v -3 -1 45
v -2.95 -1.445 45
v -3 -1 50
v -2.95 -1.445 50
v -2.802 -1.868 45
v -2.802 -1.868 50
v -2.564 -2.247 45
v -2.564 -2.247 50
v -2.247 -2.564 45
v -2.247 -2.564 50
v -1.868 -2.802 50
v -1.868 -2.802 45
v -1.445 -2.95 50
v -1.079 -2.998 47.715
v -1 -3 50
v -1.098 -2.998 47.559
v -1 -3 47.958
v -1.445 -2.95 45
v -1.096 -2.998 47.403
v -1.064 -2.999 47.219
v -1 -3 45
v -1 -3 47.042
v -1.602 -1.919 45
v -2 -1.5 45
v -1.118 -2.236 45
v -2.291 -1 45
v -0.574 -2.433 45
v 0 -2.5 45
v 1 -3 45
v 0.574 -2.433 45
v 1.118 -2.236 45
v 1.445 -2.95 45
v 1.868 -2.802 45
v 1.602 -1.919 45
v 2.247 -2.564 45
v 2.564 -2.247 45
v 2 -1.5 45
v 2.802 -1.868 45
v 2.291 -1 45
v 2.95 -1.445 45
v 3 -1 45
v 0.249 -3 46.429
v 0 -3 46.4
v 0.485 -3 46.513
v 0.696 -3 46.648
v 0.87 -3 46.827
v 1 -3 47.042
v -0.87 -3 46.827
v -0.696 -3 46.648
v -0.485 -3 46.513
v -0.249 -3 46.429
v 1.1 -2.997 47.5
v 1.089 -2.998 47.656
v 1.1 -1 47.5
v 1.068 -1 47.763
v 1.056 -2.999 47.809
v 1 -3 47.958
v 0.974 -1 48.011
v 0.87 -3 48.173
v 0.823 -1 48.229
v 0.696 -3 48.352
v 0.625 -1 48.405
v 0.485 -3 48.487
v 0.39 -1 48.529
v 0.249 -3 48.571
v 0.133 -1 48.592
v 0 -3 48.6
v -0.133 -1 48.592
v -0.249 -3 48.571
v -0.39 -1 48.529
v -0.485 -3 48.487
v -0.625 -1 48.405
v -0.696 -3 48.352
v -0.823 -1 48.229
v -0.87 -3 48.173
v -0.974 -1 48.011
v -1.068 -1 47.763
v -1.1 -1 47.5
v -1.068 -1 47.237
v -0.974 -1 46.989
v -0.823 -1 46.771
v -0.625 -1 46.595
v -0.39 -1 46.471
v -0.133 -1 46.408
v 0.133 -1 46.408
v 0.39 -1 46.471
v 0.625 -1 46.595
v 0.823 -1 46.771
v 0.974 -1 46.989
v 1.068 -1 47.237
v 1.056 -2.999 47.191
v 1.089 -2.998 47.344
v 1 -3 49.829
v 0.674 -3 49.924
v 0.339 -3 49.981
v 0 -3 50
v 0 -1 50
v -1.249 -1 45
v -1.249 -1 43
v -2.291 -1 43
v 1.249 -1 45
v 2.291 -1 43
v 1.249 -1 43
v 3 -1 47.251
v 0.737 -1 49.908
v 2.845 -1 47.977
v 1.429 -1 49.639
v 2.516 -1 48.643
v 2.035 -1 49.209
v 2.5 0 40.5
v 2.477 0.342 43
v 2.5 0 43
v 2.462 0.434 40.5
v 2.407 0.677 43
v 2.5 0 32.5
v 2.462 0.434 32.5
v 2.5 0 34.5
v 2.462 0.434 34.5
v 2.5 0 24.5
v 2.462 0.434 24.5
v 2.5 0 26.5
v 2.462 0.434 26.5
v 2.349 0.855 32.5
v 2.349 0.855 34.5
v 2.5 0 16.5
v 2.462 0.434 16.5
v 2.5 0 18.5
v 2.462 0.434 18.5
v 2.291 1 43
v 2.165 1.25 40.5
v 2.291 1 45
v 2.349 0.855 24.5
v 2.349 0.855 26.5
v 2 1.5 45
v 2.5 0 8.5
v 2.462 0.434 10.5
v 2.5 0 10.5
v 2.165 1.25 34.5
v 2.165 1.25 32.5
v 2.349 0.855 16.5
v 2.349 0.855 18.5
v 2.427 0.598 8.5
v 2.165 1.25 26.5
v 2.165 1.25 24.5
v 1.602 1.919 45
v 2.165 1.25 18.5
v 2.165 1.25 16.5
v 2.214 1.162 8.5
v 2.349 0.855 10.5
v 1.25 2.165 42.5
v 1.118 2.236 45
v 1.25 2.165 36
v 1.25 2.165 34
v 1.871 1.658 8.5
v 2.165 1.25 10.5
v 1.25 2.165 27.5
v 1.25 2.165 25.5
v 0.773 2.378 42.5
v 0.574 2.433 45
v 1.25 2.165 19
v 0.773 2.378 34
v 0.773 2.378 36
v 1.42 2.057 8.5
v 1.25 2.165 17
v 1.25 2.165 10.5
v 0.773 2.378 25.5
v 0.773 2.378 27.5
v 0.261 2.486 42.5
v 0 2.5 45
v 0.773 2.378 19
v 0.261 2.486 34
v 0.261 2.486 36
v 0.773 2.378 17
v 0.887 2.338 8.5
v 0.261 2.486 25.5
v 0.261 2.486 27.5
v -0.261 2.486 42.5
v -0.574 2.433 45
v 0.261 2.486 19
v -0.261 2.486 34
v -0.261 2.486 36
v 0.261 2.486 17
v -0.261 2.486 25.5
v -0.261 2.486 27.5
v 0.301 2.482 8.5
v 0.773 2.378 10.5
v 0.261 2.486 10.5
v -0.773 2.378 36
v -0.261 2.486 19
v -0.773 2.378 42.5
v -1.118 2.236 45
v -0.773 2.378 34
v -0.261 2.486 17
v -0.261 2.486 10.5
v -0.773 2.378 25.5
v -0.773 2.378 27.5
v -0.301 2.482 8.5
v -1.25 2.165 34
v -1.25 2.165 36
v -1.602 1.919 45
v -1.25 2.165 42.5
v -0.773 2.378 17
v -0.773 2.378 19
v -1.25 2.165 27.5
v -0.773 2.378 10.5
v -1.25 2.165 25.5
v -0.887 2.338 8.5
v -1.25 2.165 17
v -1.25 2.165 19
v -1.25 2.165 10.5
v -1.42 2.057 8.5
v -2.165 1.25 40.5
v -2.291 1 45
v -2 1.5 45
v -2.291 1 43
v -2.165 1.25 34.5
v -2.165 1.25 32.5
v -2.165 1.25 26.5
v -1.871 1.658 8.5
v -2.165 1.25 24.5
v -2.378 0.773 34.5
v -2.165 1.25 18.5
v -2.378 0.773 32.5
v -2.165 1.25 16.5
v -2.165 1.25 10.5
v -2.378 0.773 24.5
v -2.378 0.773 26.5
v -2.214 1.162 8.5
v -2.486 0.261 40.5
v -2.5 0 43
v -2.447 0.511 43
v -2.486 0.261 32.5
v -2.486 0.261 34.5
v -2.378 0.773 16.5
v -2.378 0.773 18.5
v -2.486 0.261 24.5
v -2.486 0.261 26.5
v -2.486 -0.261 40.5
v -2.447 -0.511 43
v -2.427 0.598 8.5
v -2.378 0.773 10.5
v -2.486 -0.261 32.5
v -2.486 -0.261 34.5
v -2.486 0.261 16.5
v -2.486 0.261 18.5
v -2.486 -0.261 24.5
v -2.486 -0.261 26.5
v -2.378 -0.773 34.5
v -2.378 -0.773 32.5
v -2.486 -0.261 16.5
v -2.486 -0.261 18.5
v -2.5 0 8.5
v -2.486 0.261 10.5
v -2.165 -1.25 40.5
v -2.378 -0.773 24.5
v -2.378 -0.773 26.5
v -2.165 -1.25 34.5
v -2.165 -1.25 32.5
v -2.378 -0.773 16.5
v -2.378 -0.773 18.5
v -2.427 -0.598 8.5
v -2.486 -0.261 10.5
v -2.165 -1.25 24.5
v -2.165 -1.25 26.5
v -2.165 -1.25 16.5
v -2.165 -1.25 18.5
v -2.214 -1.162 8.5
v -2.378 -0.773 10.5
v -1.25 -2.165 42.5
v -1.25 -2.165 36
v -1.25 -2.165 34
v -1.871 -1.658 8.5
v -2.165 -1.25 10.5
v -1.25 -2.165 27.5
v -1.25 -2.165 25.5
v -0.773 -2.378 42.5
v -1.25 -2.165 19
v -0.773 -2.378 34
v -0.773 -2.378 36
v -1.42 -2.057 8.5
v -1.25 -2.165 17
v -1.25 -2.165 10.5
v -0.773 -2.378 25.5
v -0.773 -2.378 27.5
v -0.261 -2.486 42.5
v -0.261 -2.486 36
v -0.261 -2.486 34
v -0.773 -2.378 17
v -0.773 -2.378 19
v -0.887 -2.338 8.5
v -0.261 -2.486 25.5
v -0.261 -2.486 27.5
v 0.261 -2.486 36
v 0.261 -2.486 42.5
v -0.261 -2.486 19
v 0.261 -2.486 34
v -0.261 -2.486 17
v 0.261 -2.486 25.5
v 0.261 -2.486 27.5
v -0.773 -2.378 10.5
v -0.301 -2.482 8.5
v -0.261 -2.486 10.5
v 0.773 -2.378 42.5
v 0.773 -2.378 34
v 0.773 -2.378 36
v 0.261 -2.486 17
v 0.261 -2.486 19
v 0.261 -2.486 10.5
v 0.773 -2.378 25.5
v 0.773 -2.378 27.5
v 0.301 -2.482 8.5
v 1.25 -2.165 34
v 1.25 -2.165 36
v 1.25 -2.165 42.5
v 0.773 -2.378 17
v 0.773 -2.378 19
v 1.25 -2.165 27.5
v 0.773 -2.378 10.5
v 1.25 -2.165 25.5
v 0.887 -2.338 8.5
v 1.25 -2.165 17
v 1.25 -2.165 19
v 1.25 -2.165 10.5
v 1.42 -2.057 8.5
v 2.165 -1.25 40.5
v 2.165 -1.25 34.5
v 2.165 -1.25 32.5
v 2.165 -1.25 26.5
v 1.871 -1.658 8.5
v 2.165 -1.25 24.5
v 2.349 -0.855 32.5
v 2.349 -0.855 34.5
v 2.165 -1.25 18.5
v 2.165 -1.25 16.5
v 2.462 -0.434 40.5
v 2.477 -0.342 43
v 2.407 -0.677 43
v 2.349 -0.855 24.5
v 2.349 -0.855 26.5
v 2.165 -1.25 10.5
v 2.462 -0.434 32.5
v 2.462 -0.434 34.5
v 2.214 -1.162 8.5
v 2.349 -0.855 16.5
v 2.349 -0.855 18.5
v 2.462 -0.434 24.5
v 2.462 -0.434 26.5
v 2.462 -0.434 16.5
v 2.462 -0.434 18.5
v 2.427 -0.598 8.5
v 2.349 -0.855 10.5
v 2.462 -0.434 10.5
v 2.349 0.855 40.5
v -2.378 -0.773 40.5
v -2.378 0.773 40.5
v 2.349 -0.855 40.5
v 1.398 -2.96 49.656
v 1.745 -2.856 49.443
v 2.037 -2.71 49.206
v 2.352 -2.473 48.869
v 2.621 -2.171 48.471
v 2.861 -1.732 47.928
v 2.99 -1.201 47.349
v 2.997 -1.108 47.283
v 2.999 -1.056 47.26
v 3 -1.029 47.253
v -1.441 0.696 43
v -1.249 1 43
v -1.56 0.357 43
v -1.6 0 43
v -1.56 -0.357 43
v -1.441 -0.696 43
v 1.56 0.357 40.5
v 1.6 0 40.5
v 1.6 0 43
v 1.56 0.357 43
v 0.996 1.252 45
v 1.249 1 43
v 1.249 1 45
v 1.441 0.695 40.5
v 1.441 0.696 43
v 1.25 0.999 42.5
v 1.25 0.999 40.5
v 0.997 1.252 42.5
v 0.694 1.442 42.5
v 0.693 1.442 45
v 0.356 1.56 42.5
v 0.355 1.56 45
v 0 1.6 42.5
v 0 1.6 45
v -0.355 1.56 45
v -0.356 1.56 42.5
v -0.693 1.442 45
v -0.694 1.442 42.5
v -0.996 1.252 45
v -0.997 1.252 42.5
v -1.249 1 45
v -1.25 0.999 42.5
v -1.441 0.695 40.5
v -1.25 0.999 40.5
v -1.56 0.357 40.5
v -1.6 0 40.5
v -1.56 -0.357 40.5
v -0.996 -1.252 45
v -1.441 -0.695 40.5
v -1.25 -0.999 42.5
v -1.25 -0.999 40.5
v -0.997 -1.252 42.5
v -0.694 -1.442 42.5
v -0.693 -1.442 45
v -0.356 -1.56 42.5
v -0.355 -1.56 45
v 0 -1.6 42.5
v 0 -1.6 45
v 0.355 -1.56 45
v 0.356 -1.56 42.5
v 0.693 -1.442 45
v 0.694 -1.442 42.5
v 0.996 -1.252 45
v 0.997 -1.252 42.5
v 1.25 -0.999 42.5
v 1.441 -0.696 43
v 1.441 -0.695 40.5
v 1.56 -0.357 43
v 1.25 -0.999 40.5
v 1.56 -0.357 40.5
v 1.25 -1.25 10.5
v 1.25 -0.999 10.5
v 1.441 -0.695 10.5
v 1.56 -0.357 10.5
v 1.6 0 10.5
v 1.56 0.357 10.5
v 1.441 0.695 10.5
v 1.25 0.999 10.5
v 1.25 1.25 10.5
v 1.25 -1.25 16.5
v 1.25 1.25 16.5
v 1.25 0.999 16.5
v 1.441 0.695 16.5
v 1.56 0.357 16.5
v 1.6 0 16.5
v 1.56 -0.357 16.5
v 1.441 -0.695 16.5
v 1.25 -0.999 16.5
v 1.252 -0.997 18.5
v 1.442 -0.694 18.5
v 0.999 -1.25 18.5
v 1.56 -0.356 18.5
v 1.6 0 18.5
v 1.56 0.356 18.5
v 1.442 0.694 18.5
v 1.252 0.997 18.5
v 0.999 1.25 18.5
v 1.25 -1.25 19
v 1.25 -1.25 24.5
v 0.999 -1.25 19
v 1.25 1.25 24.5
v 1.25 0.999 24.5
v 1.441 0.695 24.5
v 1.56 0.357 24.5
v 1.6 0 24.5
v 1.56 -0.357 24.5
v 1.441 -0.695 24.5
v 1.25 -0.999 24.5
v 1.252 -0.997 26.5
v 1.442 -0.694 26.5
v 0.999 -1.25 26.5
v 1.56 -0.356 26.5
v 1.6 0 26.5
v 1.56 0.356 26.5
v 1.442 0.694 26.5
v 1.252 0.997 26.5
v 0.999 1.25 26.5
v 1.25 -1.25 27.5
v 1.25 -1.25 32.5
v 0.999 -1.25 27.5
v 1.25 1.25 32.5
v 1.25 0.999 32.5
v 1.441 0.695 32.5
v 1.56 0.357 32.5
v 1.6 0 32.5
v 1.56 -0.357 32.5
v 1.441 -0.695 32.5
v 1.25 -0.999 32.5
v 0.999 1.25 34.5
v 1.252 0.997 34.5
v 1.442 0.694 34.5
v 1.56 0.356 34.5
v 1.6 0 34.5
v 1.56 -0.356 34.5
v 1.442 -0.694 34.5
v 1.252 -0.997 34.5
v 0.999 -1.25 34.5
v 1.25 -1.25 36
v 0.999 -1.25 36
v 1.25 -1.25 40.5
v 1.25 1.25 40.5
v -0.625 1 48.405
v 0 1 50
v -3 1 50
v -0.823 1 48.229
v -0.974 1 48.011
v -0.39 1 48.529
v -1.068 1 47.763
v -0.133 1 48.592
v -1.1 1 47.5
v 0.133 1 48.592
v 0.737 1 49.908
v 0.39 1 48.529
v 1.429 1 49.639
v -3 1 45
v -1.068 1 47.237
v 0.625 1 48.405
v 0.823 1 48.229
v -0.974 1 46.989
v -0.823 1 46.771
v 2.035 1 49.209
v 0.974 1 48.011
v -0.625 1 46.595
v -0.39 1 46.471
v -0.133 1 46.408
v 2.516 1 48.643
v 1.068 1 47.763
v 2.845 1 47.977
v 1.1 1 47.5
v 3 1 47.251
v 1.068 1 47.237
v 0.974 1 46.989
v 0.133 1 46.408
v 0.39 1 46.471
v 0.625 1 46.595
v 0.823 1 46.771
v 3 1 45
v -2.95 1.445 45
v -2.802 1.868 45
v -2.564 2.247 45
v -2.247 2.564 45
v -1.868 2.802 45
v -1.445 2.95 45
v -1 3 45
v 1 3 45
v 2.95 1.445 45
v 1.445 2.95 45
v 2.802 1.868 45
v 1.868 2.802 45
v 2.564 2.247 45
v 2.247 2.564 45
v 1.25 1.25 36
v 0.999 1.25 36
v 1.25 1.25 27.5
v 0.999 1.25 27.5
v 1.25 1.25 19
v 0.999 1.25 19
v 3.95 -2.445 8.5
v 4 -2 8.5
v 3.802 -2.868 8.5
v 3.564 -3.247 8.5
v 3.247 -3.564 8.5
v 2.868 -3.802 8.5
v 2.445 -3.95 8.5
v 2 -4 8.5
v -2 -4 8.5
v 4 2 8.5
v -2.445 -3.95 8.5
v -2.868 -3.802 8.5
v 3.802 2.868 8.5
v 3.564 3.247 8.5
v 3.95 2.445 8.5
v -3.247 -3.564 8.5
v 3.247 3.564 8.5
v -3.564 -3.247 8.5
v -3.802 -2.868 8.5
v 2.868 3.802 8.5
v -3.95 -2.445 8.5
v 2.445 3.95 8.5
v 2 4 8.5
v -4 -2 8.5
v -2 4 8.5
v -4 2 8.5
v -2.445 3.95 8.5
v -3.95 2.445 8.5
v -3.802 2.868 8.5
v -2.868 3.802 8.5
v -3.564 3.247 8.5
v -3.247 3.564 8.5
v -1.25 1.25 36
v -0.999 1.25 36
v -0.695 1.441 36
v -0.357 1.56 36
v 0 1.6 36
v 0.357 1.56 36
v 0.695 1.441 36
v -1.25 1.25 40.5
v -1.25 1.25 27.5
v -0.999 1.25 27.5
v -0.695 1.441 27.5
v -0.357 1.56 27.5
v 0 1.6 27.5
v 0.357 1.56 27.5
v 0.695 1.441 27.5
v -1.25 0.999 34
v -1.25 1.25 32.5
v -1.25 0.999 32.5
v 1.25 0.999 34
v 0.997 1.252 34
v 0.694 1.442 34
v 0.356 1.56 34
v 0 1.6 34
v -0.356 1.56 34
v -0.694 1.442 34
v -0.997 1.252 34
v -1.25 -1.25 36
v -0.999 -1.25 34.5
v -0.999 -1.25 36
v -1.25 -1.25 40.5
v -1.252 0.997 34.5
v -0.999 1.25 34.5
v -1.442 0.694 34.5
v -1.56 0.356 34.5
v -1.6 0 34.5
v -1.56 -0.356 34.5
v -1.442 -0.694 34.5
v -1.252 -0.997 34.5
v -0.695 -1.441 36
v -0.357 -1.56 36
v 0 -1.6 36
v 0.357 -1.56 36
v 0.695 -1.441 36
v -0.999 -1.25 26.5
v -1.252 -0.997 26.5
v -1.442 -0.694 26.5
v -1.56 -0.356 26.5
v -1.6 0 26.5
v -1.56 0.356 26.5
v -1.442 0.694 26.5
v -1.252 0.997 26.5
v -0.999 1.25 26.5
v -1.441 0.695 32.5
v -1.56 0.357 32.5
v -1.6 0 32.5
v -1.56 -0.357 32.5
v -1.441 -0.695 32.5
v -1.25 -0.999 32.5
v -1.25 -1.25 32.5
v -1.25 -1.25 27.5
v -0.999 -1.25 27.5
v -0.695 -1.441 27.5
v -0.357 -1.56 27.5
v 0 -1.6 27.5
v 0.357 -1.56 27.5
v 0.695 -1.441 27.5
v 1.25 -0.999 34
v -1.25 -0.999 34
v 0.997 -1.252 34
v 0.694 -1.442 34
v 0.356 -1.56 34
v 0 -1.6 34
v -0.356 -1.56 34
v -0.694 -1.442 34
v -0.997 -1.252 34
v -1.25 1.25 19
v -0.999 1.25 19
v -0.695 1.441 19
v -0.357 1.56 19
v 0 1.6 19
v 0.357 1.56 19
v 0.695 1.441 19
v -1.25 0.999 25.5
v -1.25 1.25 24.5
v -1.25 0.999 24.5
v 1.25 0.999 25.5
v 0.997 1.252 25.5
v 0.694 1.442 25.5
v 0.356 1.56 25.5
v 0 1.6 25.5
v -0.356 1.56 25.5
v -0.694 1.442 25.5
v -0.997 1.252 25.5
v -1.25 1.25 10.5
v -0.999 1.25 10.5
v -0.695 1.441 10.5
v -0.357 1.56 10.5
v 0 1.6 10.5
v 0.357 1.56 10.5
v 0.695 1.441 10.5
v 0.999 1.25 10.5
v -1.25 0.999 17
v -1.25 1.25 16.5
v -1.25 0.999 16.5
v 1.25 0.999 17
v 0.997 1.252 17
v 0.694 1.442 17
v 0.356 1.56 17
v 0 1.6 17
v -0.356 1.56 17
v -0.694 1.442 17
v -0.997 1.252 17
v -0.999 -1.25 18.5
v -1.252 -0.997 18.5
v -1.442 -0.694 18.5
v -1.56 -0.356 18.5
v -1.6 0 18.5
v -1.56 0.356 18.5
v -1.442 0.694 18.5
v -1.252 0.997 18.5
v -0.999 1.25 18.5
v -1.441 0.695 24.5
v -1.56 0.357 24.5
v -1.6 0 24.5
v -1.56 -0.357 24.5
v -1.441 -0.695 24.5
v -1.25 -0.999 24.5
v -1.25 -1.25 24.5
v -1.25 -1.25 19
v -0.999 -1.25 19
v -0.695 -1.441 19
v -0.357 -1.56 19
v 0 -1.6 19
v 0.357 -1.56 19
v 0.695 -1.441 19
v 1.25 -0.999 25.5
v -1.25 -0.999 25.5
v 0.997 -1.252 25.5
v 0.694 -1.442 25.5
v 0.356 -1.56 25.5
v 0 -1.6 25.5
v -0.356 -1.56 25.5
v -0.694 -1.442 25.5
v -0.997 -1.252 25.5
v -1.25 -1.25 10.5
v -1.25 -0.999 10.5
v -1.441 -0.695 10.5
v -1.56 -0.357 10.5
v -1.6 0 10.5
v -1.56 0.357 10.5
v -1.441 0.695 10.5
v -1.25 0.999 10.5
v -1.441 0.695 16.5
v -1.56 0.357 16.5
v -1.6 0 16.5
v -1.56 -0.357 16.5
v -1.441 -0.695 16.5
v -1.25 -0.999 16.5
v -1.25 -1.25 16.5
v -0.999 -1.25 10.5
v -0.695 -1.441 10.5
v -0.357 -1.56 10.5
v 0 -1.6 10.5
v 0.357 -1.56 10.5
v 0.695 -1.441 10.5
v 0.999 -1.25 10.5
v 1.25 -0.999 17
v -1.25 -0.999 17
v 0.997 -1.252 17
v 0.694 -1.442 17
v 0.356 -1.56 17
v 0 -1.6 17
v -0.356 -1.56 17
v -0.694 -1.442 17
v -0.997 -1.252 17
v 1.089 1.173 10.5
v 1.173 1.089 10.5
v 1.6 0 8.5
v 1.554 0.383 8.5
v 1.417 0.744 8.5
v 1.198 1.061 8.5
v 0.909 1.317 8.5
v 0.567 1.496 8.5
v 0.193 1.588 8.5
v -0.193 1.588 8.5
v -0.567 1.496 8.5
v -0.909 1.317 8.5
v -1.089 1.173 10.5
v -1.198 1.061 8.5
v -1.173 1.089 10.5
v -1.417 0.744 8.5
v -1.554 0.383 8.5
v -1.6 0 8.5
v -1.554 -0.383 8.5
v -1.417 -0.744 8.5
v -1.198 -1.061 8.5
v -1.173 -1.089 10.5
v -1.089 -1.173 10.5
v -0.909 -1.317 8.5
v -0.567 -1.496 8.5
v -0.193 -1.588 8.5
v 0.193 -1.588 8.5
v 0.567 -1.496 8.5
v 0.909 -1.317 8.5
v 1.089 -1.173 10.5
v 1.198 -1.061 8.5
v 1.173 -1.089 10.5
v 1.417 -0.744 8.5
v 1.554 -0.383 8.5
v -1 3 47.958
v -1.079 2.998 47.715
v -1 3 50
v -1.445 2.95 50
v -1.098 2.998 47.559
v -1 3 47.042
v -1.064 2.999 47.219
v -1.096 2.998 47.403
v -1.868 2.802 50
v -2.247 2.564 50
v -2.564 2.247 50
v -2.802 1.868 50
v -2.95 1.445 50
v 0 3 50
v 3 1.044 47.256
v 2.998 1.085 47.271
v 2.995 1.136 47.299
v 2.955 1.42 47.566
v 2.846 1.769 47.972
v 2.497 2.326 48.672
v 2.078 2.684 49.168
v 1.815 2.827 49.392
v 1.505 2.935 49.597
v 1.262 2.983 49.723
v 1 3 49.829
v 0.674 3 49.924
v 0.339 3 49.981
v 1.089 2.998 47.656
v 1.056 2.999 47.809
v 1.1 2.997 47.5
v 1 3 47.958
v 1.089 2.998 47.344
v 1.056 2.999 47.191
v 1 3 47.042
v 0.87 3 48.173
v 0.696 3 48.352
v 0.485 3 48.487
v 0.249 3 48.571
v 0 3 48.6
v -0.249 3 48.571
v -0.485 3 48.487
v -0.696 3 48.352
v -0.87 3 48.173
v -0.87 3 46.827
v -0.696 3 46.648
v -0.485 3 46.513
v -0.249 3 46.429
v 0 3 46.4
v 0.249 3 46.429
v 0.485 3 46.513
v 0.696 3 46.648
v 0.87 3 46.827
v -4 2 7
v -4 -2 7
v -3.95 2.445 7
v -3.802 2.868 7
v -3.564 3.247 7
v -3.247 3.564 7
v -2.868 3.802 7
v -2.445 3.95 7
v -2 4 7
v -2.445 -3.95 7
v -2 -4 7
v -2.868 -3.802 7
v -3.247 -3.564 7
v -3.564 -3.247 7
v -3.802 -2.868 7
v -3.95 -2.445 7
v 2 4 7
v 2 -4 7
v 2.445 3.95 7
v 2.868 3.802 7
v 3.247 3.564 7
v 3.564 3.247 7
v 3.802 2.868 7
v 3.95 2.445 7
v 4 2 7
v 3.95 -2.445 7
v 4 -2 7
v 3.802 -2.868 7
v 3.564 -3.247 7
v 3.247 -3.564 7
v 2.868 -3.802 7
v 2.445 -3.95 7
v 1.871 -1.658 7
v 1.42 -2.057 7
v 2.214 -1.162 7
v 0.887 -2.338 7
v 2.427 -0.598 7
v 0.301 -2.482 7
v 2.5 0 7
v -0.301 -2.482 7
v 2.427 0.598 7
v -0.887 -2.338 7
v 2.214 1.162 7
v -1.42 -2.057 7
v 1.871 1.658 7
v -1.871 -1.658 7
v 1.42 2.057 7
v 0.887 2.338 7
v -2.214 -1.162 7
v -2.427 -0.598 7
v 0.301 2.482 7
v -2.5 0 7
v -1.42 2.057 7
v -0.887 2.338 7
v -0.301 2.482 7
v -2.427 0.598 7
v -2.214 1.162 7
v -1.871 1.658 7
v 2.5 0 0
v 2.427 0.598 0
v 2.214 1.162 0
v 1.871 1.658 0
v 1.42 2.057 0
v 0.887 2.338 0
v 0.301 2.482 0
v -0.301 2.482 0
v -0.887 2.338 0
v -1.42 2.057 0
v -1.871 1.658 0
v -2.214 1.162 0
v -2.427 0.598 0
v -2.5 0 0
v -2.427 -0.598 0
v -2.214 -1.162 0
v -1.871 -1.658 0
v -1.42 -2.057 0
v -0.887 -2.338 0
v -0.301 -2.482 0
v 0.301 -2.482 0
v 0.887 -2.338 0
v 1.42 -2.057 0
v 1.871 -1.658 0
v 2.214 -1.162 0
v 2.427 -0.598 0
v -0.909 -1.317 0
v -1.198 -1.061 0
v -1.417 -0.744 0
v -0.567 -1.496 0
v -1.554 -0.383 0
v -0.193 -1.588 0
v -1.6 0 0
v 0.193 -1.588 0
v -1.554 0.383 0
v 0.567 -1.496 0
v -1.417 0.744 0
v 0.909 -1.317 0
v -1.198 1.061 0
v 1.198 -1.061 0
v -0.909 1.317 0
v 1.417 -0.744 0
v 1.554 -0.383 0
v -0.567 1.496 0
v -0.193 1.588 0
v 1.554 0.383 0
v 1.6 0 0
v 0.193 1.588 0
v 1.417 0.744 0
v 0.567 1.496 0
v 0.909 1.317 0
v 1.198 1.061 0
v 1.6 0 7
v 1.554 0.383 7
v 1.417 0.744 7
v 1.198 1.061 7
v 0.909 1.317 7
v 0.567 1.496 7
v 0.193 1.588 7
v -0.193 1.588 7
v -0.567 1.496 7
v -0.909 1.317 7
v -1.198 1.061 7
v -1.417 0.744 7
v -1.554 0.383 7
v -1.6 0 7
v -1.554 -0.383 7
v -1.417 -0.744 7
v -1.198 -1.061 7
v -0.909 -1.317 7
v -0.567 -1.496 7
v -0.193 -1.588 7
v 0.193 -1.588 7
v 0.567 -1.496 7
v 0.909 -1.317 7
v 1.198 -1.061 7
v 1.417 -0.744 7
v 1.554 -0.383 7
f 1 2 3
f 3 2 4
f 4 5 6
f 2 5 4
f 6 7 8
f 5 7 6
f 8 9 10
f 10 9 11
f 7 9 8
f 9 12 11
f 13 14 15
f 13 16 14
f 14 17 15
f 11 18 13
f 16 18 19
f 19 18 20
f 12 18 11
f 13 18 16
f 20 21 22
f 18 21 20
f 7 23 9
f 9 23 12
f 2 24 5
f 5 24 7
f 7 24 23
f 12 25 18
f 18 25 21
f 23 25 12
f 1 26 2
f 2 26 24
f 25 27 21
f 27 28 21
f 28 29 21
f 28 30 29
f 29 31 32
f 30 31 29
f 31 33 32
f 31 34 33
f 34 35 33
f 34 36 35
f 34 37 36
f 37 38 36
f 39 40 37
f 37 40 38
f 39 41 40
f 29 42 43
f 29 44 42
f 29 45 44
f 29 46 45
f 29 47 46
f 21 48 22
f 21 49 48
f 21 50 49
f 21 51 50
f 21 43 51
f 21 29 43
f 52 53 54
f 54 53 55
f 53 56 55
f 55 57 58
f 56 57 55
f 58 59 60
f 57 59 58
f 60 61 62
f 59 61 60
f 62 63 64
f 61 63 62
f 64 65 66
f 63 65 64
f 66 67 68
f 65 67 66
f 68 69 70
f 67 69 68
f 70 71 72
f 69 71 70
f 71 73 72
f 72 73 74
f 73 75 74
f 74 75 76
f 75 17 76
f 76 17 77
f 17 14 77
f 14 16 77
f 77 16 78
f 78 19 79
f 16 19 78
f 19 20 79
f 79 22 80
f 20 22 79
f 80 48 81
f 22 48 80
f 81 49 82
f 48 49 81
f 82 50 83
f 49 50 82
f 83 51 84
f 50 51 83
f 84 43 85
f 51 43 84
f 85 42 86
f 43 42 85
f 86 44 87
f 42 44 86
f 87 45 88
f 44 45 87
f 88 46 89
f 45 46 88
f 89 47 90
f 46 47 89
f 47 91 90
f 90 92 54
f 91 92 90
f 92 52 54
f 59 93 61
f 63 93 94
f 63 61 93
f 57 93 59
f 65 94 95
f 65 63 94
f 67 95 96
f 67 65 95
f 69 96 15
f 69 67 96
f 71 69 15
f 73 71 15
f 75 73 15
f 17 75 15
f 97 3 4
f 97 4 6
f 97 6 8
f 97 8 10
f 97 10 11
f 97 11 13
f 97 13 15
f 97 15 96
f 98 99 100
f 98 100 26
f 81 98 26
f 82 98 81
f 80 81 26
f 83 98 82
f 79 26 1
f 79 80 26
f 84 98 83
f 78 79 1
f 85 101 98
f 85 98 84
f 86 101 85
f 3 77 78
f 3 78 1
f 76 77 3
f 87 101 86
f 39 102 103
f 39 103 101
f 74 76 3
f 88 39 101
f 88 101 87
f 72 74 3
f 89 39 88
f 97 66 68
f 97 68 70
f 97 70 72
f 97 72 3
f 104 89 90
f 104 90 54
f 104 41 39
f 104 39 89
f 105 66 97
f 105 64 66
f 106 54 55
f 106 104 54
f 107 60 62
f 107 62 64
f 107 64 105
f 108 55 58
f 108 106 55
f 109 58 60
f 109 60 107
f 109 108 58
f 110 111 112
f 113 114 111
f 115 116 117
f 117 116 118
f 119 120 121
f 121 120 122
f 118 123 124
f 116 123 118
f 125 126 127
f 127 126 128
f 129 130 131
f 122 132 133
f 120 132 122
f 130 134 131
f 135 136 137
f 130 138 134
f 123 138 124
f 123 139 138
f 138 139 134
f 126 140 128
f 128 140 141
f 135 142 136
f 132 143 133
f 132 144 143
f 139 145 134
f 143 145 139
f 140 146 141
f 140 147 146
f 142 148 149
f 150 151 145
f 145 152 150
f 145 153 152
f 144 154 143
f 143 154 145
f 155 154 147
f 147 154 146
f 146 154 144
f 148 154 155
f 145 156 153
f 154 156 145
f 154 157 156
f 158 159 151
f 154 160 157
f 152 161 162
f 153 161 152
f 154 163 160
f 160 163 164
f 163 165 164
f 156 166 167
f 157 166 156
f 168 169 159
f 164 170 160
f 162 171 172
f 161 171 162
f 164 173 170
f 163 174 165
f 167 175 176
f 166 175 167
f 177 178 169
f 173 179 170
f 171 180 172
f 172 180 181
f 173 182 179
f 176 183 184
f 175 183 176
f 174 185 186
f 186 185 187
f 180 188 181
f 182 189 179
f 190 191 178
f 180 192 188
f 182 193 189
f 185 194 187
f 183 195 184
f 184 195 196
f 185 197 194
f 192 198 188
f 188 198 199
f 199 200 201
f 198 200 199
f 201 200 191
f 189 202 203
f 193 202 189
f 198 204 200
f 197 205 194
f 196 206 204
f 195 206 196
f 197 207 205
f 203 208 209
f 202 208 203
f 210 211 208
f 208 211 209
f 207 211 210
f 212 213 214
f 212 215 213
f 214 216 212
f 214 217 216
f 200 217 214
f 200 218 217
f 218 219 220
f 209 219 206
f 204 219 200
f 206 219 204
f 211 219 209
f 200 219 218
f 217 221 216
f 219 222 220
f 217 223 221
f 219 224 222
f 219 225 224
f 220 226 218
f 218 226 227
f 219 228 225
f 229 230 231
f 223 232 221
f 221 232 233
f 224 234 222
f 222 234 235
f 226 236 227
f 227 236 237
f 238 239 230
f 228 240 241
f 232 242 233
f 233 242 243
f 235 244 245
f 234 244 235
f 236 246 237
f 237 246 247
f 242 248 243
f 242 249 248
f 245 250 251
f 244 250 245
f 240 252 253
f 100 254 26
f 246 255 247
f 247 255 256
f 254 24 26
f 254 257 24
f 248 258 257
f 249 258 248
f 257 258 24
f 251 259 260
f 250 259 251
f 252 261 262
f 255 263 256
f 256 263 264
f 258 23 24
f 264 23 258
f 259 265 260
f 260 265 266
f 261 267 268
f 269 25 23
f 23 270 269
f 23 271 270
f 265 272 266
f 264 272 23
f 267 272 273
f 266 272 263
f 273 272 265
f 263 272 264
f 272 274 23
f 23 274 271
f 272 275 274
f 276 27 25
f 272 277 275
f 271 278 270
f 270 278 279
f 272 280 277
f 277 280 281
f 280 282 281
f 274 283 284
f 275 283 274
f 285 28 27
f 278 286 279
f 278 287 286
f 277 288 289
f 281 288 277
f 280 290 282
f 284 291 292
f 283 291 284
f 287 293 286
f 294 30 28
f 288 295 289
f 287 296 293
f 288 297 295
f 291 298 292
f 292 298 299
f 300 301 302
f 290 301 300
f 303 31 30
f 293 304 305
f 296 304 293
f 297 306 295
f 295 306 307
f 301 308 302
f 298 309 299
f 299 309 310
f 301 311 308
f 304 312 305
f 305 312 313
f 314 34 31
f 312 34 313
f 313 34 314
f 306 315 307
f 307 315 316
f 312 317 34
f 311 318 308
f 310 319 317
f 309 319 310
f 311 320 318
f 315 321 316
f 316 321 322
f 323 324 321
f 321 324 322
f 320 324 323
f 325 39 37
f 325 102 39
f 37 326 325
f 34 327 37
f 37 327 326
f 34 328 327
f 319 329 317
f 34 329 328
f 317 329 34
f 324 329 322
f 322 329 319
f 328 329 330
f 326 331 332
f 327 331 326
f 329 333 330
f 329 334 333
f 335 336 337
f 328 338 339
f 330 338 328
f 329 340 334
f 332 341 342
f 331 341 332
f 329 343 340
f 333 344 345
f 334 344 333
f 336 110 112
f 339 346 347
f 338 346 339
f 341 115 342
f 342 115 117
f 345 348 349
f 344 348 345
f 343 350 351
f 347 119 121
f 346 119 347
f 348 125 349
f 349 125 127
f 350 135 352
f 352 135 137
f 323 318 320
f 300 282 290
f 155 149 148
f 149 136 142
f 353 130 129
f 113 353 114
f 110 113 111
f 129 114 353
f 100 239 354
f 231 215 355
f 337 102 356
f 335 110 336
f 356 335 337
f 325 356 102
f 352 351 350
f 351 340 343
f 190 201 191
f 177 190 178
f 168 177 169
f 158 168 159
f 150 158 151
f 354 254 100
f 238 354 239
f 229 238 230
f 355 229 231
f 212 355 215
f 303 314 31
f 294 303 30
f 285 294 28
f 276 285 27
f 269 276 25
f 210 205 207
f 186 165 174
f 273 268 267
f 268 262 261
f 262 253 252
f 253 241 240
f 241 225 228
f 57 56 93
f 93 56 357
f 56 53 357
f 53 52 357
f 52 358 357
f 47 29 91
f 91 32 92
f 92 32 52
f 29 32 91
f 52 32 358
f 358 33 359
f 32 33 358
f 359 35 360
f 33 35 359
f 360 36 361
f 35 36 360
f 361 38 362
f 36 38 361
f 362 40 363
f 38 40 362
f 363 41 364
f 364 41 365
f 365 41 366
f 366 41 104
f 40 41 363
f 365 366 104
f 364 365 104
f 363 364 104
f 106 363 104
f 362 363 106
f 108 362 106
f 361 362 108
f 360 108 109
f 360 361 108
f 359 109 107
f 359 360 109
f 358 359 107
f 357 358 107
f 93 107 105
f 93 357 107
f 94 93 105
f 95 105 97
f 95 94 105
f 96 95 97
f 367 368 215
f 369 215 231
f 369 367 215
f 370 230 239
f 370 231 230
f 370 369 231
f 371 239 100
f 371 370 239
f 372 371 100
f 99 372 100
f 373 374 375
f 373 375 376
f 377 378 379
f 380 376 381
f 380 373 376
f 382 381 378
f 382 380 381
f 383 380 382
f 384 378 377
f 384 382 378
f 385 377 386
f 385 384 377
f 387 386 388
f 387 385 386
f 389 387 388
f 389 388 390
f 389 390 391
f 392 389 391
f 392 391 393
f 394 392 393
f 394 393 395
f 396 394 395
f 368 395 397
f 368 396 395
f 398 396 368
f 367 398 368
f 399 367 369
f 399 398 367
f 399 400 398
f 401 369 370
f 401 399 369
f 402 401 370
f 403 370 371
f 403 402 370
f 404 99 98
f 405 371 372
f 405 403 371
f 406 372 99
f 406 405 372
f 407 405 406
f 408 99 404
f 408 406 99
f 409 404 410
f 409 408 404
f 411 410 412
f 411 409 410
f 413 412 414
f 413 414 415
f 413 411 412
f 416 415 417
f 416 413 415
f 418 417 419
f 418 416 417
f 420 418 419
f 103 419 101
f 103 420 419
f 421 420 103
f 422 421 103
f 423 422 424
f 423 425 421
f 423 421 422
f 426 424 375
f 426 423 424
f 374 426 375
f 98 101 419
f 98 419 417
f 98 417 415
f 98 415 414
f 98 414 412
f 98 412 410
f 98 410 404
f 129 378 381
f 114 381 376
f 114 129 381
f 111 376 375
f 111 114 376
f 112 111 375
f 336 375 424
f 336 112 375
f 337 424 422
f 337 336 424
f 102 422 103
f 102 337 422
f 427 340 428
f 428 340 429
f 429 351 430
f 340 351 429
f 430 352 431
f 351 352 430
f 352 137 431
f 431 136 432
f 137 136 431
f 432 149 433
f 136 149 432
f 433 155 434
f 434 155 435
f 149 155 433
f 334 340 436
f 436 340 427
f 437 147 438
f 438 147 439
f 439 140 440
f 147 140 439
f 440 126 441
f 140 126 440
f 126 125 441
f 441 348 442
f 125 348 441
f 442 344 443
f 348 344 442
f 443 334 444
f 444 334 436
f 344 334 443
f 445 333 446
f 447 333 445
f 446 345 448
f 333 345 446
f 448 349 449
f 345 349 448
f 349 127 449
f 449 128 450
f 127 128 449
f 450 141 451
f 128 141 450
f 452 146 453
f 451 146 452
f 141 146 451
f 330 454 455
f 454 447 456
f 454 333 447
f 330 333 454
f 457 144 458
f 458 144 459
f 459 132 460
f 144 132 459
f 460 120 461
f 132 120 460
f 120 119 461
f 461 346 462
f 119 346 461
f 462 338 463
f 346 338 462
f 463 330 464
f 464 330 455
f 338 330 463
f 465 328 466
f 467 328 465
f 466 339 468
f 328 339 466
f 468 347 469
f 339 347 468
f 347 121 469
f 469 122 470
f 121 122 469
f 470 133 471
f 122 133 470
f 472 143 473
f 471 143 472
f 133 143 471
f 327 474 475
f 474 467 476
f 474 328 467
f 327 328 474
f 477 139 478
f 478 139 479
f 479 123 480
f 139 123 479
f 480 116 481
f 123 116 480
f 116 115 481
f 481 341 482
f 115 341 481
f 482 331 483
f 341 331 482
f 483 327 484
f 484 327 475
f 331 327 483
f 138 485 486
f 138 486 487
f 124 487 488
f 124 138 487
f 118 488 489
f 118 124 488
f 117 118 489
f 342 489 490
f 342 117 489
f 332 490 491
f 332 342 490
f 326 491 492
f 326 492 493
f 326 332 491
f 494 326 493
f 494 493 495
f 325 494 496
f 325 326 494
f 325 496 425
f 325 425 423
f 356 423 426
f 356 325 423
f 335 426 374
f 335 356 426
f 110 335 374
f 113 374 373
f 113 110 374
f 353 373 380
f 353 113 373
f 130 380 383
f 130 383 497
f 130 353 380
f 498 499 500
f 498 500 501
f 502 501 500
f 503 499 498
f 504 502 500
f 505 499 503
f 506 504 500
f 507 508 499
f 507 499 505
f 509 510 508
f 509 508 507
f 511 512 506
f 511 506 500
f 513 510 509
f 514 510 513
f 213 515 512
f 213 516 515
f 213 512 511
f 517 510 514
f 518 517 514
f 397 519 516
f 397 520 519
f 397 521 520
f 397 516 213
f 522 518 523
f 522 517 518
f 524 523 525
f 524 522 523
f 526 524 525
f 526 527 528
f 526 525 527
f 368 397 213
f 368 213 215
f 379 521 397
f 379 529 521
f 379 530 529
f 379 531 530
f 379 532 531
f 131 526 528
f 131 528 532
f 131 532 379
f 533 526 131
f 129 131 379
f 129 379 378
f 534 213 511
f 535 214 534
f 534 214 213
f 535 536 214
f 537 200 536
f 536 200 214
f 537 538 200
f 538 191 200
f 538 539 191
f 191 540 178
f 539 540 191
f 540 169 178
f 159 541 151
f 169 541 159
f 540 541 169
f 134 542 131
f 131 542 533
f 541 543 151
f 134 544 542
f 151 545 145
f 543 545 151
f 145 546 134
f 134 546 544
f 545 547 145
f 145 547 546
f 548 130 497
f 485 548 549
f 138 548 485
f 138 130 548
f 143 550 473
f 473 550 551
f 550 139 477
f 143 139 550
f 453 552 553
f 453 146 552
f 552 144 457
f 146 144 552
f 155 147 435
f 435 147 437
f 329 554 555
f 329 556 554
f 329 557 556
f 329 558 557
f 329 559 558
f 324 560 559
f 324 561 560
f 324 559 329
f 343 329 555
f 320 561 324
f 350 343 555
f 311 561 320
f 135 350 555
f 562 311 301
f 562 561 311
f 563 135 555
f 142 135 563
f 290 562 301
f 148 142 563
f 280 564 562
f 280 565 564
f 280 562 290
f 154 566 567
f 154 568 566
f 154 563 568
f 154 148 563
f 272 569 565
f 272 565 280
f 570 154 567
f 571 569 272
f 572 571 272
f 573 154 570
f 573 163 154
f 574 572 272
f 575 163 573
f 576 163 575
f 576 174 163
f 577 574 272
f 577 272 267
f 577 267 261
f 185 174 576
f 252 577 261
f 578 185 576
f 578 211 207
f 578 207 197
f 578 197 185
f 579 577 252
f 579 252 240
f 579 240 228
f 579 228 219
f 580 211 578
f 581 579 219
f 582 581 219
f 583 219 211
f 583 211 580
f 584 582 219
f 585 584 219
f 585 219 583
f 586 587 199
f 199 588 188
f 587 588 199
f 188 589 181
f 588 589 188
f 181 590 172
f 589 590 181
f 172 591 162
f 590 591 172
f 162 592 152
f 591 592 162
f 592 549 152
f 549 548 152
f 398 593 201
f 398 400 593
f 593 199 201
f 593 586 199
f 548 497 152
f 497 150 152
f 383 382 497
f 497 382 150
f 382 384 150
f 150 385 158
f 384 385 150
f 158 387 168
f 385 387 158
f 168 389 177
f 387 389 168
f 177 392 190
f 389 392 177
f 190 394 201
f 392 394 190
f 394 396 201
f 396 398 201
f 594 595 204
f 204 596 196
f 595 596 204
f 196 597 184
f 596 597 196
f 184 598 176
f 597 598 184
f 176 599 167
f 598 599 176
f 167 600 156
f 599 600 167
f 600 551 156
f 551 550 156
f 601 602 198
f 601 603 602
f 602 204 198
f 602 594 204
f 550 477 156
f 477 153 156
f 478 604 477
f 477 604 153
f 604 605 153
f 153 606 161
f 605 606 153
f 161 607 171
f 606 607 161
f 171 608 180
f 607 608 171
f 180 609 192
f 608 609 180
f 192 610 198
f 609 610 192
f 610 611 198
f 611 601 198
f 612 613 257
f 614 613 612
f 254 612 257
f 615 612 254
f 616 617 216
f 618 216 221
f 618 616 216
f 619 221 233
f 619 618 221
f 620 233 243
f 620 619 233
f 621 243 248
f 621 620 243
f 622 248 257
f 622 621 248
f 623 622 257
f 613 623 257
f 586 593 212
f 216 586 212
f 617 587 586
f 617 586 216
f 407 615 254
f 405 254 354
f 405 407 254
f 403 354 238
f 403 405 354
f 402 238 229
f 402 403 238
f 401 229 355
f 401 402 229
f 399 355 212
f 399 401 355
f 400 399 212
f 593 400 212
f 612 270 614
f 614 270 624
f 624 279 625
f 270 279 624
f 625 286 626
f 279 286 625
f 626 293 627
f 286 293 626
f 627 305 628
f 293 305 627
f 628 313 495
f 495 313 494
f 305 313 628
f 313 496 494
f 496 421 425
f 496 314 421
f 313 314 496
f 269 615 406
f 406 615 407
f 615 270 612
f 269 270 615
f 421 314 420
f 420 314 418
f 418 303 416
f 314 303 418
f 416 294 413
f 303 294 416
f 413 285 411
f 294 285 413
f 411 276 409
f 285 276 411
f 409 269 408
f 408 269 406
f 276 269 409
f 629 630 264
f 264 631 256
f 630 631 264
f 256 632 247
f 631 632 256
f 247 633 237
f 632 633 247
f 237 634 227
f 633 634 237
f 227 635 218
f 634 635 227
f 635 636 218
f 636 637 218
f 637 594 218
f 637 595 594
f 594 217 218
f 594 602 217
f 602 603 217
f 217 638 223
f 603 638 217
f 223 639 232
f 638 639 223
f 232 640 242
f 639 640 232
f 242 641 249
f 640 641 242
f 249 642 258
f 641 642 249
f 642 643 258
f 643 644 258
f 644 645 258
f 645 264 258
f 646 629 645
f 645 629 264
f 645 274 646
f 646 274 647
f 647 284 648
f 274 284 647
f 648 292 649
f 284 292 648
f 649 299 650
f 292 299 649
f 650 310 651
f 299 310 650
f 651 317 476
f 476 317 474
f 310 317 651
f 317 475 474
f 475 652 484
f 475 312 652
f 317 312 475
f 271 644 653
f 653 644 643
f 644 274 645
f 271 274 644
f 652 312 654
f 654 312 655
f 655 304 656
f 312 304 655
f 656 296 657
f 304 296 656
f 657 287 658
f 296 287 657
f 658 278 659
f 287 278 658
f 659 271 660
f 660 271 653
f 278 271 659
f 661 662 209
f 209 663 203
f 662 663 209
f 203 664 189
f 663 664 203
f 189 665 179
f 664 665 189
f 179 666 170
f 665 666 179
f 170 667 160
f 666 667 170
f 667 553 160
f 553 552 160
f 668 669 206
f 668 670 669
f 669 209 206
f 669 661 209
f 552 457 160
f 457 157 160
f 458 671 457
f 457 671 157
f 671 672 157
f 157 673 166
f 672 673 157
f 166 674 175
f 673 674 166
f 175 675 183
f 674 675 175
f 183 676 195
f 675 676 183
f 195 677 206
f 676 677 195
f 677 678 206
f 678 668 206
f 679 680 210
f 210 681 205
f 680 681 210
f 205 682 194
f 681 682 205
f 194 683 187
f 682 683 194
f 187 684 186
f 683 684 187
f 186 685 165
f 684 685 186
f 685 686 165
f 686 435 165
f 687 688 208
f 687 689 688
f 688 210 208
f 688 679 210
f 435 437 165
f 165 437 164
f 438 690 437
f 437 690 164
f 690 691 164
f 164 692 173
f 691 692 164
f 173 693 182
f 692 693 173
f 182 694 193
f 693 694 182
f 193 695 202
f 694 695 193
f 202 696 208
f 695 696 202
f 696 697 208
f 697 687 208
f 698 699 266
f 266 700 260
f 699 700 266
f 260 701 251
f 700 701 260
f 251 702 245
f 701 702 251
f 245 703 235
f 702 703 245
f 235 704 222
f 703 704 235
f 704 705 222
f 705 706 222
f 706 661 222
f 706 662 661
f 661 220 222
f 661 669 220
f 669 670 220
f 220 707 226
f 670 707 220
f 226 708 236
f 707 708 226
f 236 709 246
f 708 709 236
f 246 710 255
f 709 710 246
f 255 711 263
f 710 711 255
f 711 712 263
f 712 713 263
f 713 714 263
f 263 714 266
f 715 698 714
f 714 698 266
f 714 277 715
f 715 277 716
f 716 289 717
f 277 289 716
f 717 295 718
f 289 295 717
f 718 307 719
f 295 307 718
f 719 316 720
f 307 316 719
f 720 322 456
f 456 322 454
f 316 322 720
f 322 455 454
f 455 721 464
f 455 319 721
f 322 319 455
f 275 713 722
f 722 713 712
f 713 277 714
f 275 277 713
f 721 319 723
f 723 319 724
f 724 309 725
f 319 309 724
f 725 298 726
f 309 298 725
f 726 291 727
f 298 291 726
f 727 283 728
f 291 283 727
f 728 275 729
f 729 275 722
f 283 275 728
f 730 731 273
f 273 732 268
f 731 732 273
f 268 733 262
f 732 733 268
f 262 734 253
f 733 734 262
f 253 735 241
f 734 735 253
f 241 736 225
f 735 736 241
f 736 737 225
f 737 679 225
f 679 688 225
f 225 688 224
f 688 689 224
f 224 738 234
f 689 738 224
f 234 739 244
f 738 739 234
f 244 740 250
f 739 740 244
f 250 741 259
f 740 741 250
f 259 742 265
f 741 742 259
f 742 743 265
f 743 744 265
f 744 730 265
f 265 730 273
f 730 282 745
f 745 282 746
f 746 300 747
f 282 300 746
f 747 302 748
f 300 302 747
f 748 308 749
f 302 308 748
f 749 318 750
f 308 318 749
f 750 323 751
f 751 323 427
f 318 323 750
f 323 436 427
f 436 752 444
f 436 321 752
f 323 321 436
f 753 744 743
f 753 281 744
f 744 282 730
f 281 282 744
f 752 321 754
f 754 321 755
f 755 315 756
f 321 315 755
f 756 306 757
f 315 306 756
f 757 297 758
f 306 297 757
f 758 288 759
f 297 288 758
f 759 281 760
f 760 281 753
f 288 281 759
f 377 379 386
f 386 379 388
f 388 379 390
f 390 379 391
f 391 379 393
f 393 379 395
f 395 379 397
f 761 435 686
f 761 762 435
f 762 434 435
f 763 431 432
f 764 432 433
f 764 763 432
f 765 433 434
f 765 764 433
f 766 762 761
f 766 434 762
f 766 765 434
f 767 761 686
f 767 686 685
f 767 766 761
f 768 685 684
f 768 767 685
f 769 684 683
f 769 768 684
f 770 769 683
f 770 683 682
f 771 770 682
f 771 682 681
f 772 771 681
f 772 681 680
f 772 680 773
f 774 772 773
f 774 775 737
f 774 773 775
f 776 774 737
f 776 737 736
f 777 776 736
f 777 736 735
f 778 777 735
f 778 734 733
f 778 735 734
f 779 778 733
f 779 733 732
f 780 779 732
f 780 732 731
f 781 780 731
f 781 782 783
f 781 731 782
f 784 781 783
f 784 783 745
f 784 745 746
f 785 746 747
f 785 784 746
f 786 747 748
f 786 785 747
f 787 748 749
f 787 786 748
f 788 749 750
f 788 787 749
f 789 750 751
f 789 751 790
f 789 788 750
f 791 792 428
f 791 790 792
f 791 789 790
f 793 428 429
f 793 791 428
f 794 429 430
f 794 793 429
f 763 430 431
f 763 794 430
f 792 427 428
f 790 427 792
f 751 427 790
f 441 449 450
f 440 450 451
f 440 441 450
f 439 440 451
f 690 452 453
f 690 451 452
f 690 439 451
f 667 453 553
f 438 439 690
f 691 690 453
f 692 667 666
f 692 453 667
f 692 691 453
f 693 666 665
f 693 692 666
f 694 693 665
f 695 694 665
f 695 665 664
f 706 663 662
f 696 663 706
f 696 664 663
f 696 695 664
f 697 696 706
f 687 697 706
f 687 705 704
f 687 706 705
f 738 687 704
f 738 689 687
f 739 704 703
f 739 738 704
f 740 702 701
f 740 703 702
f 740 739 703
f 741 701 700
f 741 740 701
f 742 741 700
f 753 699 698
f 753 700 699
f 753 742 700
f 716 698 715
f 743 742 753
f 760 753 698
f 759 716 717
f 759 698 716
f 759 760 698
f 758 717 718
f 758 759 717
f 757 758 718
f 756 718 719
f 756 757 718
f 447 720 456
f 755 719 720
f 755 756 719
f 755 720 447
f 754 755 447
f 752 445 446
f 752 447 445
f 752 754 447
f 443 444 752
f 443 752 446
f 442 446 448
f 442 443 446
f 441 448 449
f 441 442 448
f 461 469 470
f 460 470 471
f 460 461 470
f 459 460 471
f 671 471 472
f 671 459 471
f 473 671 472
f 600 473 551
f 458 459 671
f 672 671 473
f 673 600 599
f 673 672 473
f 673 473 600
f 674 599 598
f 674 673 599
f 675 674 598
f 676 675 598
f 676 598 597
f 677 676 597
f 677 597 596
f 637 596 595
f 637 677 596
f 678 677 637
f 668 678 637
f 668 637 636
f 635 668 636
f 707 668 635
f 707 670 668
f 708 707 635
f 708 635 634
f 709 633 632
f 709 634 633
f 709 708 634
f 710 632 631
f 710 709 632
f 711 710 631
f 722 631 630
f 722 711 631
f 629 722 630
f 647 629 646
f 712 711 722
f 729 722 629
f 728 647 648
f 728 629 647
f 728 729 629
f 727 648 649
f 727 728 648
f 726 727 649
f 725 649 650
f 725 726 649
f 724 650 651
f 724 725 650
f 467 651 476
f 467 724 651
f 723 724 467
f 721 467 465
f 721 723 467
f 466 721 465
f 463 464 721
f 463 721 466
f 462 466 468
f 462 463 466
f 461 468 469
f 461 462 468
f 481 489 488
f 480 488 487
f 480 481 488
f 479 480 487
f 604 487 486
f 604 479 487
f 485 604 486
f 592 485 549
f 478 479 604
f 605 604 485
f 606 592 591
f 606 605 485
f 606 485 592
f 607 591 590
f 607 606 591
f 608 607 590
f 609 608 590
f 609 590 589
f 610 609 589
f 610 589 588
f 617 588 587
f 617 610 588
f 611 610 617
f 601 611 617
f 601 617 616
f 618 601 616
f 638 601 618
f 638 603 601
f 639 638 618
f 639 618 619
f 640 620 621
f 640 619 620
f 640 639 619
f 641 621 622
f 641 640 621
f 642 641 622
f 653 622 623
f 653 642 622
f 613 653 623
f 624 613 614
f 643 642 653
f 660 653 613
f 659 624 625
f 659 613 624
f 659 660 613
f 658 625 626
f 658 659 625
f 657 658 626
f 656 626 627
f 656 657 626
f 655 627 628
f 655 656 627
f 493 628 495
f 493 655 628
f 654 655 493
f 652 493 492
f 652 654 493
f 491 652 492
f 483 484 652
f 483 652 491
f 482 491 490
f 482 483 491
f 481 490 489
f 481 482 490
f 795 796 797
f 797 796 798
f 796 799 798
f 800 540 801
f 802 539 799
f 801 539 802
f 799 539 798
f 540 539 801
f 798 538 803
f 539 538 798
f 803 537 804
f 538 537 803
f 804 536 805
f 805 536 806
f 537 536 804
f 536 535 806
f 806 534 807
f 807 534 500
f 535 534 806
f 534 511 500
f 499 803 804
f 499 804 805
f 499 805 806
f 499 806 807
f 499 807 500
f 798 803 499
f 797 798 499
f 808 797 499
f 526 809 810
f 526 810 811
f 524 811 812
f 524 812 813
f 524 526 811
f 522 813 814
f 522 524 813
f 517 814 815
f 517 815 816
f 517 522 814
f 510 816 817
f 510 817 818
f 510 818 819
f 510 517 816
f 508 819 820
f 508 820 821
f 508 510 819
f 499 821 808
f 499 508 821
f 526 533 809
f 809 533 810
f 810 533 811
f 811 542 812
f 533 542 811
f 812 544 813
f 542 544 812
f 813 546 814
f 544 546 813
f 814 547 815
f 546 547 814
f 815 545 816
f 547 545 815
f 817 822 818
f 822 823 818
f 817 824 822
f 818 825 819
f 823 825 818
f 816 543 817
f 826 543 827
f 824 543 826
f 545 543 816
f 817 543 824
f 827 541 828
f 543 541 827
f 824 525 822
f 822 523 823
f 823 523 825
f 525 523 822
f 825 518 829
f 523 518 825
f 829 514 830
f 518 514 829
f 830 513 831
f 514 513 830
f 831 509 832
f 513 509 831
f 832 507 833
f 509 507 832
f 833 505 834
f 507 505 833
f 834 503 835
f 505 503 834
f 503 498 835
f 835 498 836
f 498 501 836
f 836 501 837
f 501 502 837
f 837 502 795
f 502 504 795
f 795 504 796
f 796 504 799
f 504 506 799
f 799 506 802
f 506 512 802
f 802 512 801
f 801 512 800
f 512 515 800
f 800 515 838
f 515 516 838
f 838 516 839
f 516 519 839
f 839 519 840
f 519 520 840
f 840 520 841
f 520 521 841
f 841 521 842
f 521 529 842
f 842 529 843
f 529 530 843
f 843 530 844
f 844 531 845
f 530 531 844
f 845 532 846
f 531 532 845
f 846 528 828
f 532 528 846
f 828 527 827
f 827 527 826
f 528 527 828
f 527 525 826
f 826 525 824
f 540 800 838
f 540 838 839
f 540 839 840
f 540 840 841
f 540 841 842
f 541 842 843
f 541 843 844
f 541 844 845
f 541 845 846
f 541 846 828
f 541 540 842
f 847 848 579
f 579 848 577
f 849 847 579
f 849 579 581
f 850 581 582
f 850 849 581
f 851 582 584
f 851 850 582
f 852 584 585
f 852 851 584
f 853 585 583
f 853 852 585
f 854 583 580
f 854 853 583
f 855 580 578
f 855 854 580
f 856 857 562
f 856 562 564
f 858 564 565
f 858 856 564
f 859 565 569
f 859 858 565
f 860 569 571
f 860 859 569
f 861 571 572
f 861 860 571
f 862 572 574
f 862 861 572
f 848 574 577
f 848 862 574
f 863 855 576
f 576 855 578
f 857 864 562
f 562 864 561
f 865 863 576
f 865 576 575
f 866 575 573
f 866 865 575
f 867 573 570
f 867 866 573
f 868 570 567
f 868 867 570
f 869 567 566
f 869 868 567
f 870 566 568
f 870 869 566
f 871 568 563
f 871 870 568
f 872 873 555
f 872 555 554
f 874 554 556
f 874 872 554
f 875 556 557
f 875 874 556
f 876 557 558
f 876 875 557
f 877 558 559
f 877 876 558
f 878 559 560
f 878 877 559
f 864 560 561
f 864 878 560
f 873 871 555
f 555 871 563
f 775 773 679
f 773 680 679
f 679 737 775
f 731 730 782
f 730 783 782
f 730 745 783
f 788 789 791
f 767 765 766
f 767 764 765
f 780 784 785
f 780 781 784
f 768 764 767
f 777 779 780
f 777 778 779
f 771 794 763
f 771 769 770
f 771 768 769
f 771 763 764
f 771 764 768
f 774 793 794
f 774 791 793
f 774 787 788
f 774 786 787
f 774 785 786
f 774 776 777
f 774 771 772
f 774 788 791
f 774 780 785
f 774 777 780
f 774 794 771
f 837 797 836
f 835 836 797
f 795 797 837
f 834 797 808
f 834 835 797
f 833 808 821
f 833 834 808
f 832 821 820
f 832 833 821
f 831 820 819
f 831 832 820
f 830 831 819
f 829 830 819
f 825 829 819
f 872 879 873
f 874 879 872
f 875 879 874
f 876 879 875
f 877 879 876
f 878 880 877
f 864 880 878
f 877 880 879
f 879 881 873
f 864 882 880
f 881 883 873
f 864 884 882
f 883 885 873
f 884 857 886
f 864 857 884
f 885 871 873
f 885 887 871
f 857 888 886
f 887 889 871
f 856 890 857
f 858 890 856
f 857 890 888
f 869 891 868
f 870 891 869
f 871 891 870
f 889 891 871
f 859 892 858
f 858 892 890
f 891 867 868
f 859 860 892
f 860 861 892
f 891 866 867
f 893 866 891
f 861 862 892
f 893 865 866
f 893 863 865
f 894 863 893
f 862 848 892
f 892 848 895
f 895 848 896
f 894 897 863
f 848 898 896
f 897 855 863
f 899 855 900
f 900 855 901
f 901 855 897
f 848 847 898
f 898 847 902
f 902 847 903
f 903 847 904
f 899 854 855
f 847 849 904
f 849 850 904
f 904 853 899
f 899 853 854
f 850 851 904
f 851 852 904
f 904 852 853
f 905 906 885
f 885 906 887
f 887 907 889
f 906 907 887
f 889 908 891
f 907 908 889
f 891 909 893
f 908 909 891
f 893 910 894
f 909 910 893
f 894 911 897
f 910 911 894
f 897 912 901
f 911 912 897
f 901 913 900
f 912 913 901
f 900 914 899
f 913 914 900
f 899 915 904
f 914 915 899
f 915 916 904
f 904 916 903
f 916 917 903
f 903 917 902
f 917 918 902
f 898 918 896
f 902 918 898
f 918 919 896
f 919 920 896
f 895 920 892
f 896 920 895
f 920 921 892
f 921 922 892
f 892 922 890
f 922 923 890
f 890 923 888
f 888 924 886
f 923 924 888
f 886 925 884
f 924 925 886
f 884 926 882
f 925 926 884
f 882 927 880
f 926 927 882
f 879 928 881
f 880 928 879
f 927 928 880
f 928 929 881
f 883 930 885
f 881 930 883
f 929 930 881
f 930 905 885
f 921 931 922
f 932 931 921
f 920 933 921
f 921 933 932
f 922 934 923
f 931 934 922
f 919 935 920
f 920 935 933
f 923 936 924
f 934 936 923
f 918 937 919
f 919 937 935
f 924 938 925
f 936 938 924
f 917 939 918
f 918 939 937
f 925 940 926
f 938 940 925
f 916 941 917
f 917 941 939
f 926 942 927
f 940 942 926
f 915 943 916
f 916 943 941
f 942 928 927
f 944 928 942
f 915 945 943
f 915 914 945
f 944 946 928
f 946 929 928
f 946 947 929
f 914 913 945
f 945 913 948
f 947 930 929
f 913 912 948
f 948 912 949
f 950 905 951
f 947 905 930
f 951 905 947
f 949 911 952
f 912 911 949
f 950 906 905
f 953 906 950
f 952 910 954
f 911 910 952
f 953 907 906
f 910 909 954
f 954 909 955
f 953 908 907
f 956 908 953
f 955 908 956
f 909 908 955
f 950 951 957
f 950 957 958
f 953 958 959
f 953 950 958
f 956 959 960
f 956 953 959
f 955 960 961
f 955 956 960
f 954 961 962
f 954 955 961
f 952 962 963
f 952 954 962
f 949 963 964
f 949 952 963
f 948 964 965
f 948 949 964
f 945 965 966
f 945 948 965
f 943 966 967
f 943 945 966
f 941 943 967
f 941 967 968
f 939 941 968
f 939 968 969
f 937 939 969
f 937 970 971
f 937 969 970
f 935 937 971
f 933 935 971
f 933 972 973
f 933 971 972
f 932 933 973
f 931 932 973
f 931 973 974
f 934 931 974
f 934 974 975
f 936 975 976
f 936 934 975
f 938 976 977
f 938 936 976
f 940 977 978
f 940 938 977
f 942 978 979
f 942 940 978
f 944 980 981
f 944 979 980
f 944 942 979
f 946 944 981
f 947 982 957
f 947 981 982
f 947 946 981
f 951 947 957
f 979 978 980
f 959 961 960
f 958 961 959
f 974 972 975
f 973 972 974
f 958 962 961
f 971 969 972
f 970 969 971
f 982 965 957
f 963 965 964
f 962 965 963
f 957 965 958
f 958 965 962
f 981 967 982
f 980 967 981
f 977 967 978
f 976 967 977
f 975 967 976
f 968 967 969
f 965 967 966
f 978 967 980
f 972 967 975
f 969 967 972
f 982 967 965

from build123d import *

# Parameters (mm, degrees)
SKETCH_R        = 2.5
SKETCH_R_2      = 1.6
PAD_DEPTH       = 45
PAD001_DEPTH    = 1.5
PAD002_DEPTH    = 5
SKETCH003_W     = 2
SKETCH003_H     = 7
POCKET_DEPTH    = 7.001
SKETCH004_R     = 1.1
POCKET001_DEPTH = 7.001
SKETCH006_W     = 2.5
SKETCH006_H     = 6.5
POCKET002_DEPTH = 8.001
SKETCH005_W     = 2.5
SKETCH005_H     = 6
POCKET003_DEPTH = 8.001
POCKET004_DEPTH = 7.001


with BuildPart() as part:
    # Sketch → Pad (new body)
    with BuildSketch(Plane.XY):
        Circle(SKETCH_R)
        Circle(SKETCH_R_2, mode=Mode.SUBTRACT)
    extrude(amount=PAD_DEPTH)

    # Sketch001 (on Face3 of Pad) → Pad001 (join)
    with BuildSketch(Plane(origin=(0, 0, 7), x_dir=(1, 0, 0), z_dir=(0, 0, -1))):
        with BuildLine():
            Line((-2, 4), (2, 4))
            ThreePointArc((4, 2), (3.414214, 3.414214), (2, 4))
            Line((4, 2), (4, -2))
            ThreePointArc((2, -4), (3.414214, -3.414214), (4, -2))
            Line((2, -4), (-2, -4))
            ThreePointArc((-4, -2), (-3.414214, -3.414214), (-2, -4))
            Line((-4, -2), (-4, 2))
            ThreePointArc((-2, 4), (-3.414214, 3.414214), (-4, 2))
        make_face()
    extrude(amount=-PAD001_DEPTH)

    # Sketch002 (on Face16 of Pad001) → Pad002 (join)
    with BuildSketch(Plane.XY.offset(45)):
        with BuildLine():
            Line((-1, 3), (1, 3))
            ThreePointArc((3, 1), (2.414214, 2.414214), (1, 3))
            Line((3, 1), (3, -1))
            ThreePointArc((1, -3), (2.414214, -2.414214), (3, -1))
            Line((1, -3), (-1, -3))
            ThreePointArc((-3, -1), (-2.414214, -2.414214), (-1, -3))
            Line((-3, -1), (-3, 1))
            ThreePointArc((-1, 3), (-2.414214, 2.414214), (-3, 1))
        make_face()
    extrude(amount=PAD002_DEPTH)

    # Sketch003 (on Face10 of Pad002) → Pocket (cut, through all)
    with BuildSketch(Plane.YZ.offset(3)):
        with Locations((0, 46.5)):
            Rectangle(SKETCH003_W, SKETCH003_H)
    extrude(amount=-POCKET_DEPTH, mode=Mode.SUBTRACT)

    # Sketch004 (on Face3 of Pocket) → Pocket001 (cut, through all)
    with BuildSketch(Plane.XZ.offset(3)):
        with Locations((0, 47.5)):
            Circle(SKETCH004_R)
    extrude(amount=-POCKET001_DEPTH, mode=Mode.SUBTRACT)

    # Sketch006 (on Face28 of Pocket001) → Pocket002 (cut, through all)
    with BuildSketch(Plane.XZ.offset(4)):
        with Locations((0, 13.75)):
            Rectangle(SKETCH006_W, SKETCH006_H)
        with Locations((0, 22.25)):
            Rectangle(SKETCH006_W, SKETCH006_H)
        with Locations((0, 30.75)):
            Rectangle(SKETCH006_W, SKETCH006_H)
        with Locations((0, 39.25)):
            Rectangle(SKETCH006_W, SKETCH006_H)
    extrude(amount=-POCKET002_DEPTH, mode=Mode.SUBTRACT)

    # Sketch005 (on Face31 of Pocket001) → Pocket003 (cut, through all)
    with BuildSketch(Plane.YZ.offset(4)):
        with Locations((0, 13.5)):
            Rectangle(SKETCH005_W, SKETCH005_H)
        with Locations((0, 21.5)):
            Rectangle(SKETCH005_W, SKETCH005_H)
        with Locations((0, 29.5)):
            Rectangle(SKETCH005_W, SKETCH005_H)
        with Locations((0, 37.5)):
            Rectangle(SKETCH005_W, SKETCH005_H)
    extrude(amount=-POCKET003_DEPTH, mode=Mode.SUBTRACT)

    # Sketch007 (on Face5 of Pocket003) → Pocket004 (cut, through all)
    with BuildSketch(Plane.XZ.offset(3)):
        with BuildLine():
            ThreePointArc((3, 47.251006), (2.034513, 49.208821), (0, 50))
            Line((0, 50), (3, 50))
            Line((3, 47.251006), (3, 50))
        make_face()
    extrude(amount=-POCKET004_DEPTH, mode=Mode.SUBTRACT)


solid = part.part
